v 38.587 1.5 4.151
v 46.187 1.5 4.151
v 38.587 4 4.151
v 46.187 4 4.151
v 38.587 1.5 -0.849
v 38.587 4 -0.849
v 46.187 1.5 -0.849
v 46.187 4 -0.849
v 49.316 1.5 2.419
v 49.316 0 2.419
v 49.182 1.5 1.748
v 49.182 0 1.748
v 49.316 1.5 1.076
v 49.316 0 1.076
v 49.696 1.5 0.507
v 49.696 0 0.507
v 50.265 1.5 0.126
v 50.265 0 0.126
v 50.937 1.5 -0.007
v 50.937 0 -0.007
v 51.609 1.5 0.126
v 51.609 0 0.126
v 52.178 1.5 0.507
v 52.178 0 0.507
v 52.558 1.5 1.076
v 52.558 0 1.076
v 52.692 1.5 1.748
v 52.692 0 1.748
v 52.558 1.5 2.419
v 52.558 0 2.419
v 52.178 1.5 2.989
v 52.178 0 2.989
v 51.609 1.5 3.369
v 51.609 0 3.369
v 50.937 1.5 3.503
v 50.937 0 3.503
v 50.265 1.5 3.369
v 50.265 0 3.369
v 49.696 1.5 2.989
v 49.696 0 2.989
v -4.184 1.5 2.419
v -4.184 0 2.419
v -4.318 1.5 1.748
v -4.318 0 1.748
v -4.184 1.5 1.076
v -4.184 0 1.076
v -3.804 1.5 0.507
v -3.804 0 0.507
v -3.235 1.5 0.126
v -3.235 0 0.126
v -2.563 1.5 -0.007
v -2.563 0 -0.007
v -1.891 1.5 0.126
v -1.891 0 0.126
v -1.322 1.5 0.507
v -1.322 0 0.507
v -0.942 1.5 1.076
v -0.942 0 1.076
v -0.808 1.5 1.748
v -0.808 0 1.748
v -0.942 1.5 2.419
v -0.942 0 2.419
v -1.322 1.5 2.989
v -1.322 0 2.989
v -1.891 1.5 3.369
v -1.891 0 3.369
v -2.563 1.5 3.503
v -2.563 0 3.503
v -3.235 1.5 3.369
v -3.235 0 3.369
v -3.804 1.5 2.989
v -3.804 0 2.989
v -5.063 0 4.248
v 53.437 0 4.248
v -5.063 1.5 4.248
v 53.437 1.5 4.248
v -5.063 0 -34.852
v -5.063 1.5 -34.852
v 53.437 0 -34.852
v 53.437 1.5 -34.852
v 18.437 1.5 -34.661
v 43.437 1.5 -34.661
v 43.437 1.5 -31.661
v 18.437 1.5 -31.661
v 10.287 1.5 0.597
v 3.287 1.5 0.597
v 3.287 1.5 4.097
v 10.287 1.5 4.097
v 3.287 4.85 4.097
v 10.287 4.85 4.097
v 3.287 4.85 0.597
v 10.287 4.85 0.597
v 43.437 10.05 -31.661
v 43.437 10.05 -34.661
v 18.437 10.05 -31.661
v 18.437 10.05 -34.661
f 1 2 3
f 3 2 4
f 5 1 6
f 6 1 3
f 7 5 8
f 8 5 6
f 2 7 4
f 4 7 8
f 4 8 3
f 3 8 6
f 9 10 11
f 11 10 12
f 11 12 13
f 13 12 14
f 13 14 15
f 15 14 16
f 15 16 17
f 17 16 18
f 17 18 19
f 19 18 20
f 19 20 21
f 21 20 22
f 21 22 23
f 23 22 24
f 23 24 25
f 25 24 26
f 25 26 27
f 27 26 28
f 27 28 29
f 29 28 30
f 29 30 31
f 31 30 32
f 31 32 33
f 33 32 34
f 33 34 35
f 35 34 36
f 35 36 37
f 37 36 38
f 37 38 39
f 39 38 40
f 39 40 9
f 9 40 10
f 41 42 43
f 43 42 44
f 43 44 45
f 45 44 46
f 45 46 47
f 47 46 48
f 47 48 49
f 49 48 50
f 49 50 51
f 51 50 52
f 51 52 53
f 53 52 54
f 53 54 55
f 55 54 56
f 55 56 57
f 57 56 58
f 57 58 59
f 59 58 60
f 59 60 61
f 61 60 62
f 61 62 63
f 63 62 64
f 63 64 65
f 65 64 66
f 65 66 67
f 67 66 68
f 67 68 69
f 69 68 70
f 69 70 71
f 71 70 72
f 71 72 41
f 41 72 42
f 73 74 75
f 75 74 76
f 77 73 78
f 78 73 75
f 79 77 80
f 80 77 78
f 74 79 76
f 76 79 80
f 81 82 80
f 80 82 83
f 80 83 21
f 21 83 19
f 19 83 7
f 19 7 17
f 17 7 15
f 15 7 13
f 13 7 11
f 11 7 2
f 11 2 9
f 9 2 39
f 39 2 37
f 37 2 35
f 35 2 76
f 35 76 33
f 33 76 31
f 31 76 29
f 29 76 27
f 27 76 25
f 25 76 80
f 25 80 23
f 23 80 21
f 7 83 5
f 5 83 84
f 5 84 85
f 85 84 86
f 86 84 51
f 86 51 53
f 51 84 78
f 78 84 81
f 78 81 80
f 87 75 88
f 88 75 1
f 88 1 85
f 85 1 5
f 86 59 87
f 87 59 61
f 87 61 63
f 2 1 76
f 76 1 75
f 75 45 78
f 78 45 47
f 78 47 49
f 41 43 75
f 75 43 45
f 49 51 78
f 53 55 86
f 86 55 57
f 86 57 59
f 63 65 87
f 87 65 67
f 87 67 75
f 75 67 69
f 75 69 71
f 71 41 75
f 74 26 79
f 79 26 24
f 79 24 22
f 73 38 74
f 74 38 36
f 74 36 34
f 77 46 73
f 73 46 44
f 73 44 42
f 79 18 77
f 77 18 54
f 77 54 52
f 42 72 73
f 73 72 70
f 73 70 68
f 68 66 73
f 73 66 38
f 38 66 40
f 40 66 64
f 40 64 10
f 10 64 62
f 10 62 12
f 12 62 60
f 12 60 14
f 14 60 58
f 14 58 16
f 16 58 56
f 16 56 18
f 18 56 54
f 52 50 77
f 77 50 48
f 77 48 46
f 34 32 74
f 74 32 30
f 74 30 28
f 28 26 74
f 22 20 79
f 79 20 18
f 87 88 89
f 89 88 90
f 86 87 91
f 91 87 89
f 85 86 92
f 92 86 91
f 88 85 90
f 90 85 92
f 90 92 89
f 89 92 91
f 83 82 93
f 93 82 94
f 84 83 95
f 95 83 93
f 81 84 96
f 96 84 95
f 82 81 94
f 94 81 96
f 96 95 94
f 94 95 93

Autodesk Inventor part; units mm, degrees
ref_plane "YZ Plane" through (0, 0, 0) normal (1, 0, 0) x (0, 1, 0)
ref_plane "XZ Plane" through (0, 0, 0) normal (0, 1, 0) x (-1, 0, 0)
ref_plane "XY Plane" through (0, 0, 0) normal (0, 0, 1) x (1, 0, 0)
sketch "Base Board" plane through (0, 0, 0) normal (0, 1, 0) x (-1, 0, 0)
  line L0 (5.0631, 4.2478) -> (-53.4369, 4.2478)
  line L1 (-53.4369, 4.2478) -> (-53.4369, -34.8522)
  line L2 (-53.4369, -34.8522) -> (5.0631, -34.8522)
  line L3 (5.0631, -34.8522) -> (5.0631, 4.2478)
  circle A0 centre (2.5631, 1.7478) radius 1.755
  circle A1 centre (-50.9369, 1.7478) radius 1.755
  point P0 (0, 0)
  dimension "d0" = 58.5
  dimension "d1" = 39.1
  dimension "d6" = 3.51
  dimension "d8" = 3.51
  dimension "d10" = 2.5
  dimension "d11" = 2.5
  dimension "d12" = 2.5
  dimension "d13" = 2.5
extrude "Base Extrusion" add sketch "Base Board" along normal blind 1.5
sketch "Sketch2" plane through (0, 1.5, 0) normal (0, 1, 0) x (1, 0, 0)
  line L0 (38.5869, -4.1507) -> (46.1869, -4.1507)
  line L1 (46.1869, -4.1507) -> (46.1869, 0.8493)
  line L2 (46.1869, 0.8493) -> (38.5869, 0.8493)
  line L3 (38.5869, 0.8493) -> (38.5869, -4.1507)
  line L4 (-5.0631, 34.8522) -> (-5.0631, -4.2478) projected
  line L5 (53.4369, -4.2478) -> (53.4369, 34.8522) projected
  dimension "d16" = 7.6
  dimension "d17" = 5
  dimension "d21" = 7.25
extrude "MicroUSB slot" add sketch "Sketch2" along normal blind 2.5
sketch "Sketch3" plane through (0, 1.5, 0) normal (0, 1, 0) x (1, 0, 0)
  line L0 (3.2869, -4.0967) -> (10.2869, -4.0967)
  line L1 (10.2869, -4.0967) -> (10.2869, -0.5967)
  line L2 (10.2869, -0.5967) -> (3.2869, -0.5967)
  line L3 (3.2869, -0.5967) -> (3.2869, -4.0967)
  line L4 (-5.0631, 34.8522) -> (-5.0631, -4.2478) projected
  point P0 (0, 0)
  dimension "d22" = 7
  dimension "d23" = 3.5
  dimension "d24" = 8.35
extrude "Reset Button" add sketch "Sketch3" along normal blind 3.35
sketch "Sketch4" plane through (0, 1.5, 0) normal (0, 1, 0) x (1, 0, 0)
  line L0 (43.4369, 31.6613) -> (18.4369, 31.6613)
  line L1 (18.4369, 31.6613) -> (18.4369, 34.6613)
  line L2 (18.4369, 34.6613) -> (43.4369, 34.6613)
  line L3 (43.4369, 34.6613) -> (43.4369, 31.6613)
  line L4 (53.4369, -4.2478) -> (53.4369, 34.8522) projected
  point P0 (0, 0)
  point P1 (43.4369, 33.1613)
  dimension "d27" = 25
  dimension "d28" = 3
  dimension "d29" = 10
extrude "Extrusion4" add sketch "Sketch4" along normal blind 8.55
properties part number "XDSEmulatorModule"
